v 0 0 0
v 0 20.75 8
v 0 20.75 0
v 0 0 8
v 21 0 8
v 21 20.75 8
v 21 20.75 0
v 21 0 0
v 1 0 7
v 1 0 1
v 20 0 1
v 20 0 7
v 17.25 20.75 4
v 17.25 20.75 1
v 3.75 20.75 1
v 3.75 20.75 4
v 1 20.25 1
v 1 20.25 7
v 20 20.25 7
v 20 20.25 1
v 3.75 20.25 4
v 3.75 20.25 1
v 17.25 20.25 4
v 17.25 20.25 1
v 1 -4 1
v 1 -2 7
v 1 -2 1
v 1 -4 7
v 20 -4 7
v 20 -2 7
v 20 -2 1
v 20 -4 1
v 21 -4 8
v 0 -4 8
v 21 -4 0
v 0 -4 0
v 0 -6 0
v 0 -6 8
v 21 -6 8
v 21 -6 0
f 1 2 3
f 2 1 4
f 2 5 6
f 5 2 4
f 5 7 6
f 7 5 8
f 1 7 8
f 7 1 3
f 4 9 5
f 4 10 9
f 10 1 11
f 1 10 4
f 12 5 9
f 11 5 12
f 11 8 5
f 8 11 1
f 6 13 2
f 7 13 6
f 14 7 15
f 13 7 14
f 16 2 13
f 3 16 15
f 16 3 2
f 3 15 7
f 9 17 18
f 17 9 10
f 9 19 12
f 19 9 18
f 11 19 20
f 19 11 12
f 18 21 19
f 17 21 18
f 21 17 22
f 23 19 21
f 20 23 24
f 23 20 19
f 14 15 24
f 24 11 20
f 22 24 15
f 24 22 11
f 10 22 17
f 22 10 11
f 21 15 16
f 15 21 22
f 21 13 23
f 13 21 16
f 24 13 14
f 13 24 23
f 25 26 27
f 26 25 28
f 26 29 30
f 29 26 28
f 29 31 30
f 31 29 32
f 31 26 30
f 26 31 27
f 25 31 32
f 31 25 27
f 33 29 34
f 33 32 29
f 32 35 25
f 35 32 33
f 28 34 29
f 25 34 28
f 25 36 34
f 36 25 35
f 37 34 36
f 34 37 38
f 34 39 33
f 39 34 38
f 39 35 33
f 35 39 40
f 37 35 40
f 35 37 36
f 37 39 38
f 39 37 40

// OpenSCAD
a = 8;//höhe
b = 21;//breite

difference(){
    cube([b, 20.75, a], false);
    translate([1, -1, 1]){
        cube([b-2, 21.25, a-2], false);
    }
    translate([3.75, 0.25, 1]){
        cube([13.5, 22.5, 3], false);
    }
}



//lid
translate([1, -4, 1]){
    cube([b-2, 2, a-2], false);
}
translate([0, -6, 0]){
    cube([b, 2, a], false);
}


echo("\n\n\t\tThis is a design for a case for the Digispark\n");
